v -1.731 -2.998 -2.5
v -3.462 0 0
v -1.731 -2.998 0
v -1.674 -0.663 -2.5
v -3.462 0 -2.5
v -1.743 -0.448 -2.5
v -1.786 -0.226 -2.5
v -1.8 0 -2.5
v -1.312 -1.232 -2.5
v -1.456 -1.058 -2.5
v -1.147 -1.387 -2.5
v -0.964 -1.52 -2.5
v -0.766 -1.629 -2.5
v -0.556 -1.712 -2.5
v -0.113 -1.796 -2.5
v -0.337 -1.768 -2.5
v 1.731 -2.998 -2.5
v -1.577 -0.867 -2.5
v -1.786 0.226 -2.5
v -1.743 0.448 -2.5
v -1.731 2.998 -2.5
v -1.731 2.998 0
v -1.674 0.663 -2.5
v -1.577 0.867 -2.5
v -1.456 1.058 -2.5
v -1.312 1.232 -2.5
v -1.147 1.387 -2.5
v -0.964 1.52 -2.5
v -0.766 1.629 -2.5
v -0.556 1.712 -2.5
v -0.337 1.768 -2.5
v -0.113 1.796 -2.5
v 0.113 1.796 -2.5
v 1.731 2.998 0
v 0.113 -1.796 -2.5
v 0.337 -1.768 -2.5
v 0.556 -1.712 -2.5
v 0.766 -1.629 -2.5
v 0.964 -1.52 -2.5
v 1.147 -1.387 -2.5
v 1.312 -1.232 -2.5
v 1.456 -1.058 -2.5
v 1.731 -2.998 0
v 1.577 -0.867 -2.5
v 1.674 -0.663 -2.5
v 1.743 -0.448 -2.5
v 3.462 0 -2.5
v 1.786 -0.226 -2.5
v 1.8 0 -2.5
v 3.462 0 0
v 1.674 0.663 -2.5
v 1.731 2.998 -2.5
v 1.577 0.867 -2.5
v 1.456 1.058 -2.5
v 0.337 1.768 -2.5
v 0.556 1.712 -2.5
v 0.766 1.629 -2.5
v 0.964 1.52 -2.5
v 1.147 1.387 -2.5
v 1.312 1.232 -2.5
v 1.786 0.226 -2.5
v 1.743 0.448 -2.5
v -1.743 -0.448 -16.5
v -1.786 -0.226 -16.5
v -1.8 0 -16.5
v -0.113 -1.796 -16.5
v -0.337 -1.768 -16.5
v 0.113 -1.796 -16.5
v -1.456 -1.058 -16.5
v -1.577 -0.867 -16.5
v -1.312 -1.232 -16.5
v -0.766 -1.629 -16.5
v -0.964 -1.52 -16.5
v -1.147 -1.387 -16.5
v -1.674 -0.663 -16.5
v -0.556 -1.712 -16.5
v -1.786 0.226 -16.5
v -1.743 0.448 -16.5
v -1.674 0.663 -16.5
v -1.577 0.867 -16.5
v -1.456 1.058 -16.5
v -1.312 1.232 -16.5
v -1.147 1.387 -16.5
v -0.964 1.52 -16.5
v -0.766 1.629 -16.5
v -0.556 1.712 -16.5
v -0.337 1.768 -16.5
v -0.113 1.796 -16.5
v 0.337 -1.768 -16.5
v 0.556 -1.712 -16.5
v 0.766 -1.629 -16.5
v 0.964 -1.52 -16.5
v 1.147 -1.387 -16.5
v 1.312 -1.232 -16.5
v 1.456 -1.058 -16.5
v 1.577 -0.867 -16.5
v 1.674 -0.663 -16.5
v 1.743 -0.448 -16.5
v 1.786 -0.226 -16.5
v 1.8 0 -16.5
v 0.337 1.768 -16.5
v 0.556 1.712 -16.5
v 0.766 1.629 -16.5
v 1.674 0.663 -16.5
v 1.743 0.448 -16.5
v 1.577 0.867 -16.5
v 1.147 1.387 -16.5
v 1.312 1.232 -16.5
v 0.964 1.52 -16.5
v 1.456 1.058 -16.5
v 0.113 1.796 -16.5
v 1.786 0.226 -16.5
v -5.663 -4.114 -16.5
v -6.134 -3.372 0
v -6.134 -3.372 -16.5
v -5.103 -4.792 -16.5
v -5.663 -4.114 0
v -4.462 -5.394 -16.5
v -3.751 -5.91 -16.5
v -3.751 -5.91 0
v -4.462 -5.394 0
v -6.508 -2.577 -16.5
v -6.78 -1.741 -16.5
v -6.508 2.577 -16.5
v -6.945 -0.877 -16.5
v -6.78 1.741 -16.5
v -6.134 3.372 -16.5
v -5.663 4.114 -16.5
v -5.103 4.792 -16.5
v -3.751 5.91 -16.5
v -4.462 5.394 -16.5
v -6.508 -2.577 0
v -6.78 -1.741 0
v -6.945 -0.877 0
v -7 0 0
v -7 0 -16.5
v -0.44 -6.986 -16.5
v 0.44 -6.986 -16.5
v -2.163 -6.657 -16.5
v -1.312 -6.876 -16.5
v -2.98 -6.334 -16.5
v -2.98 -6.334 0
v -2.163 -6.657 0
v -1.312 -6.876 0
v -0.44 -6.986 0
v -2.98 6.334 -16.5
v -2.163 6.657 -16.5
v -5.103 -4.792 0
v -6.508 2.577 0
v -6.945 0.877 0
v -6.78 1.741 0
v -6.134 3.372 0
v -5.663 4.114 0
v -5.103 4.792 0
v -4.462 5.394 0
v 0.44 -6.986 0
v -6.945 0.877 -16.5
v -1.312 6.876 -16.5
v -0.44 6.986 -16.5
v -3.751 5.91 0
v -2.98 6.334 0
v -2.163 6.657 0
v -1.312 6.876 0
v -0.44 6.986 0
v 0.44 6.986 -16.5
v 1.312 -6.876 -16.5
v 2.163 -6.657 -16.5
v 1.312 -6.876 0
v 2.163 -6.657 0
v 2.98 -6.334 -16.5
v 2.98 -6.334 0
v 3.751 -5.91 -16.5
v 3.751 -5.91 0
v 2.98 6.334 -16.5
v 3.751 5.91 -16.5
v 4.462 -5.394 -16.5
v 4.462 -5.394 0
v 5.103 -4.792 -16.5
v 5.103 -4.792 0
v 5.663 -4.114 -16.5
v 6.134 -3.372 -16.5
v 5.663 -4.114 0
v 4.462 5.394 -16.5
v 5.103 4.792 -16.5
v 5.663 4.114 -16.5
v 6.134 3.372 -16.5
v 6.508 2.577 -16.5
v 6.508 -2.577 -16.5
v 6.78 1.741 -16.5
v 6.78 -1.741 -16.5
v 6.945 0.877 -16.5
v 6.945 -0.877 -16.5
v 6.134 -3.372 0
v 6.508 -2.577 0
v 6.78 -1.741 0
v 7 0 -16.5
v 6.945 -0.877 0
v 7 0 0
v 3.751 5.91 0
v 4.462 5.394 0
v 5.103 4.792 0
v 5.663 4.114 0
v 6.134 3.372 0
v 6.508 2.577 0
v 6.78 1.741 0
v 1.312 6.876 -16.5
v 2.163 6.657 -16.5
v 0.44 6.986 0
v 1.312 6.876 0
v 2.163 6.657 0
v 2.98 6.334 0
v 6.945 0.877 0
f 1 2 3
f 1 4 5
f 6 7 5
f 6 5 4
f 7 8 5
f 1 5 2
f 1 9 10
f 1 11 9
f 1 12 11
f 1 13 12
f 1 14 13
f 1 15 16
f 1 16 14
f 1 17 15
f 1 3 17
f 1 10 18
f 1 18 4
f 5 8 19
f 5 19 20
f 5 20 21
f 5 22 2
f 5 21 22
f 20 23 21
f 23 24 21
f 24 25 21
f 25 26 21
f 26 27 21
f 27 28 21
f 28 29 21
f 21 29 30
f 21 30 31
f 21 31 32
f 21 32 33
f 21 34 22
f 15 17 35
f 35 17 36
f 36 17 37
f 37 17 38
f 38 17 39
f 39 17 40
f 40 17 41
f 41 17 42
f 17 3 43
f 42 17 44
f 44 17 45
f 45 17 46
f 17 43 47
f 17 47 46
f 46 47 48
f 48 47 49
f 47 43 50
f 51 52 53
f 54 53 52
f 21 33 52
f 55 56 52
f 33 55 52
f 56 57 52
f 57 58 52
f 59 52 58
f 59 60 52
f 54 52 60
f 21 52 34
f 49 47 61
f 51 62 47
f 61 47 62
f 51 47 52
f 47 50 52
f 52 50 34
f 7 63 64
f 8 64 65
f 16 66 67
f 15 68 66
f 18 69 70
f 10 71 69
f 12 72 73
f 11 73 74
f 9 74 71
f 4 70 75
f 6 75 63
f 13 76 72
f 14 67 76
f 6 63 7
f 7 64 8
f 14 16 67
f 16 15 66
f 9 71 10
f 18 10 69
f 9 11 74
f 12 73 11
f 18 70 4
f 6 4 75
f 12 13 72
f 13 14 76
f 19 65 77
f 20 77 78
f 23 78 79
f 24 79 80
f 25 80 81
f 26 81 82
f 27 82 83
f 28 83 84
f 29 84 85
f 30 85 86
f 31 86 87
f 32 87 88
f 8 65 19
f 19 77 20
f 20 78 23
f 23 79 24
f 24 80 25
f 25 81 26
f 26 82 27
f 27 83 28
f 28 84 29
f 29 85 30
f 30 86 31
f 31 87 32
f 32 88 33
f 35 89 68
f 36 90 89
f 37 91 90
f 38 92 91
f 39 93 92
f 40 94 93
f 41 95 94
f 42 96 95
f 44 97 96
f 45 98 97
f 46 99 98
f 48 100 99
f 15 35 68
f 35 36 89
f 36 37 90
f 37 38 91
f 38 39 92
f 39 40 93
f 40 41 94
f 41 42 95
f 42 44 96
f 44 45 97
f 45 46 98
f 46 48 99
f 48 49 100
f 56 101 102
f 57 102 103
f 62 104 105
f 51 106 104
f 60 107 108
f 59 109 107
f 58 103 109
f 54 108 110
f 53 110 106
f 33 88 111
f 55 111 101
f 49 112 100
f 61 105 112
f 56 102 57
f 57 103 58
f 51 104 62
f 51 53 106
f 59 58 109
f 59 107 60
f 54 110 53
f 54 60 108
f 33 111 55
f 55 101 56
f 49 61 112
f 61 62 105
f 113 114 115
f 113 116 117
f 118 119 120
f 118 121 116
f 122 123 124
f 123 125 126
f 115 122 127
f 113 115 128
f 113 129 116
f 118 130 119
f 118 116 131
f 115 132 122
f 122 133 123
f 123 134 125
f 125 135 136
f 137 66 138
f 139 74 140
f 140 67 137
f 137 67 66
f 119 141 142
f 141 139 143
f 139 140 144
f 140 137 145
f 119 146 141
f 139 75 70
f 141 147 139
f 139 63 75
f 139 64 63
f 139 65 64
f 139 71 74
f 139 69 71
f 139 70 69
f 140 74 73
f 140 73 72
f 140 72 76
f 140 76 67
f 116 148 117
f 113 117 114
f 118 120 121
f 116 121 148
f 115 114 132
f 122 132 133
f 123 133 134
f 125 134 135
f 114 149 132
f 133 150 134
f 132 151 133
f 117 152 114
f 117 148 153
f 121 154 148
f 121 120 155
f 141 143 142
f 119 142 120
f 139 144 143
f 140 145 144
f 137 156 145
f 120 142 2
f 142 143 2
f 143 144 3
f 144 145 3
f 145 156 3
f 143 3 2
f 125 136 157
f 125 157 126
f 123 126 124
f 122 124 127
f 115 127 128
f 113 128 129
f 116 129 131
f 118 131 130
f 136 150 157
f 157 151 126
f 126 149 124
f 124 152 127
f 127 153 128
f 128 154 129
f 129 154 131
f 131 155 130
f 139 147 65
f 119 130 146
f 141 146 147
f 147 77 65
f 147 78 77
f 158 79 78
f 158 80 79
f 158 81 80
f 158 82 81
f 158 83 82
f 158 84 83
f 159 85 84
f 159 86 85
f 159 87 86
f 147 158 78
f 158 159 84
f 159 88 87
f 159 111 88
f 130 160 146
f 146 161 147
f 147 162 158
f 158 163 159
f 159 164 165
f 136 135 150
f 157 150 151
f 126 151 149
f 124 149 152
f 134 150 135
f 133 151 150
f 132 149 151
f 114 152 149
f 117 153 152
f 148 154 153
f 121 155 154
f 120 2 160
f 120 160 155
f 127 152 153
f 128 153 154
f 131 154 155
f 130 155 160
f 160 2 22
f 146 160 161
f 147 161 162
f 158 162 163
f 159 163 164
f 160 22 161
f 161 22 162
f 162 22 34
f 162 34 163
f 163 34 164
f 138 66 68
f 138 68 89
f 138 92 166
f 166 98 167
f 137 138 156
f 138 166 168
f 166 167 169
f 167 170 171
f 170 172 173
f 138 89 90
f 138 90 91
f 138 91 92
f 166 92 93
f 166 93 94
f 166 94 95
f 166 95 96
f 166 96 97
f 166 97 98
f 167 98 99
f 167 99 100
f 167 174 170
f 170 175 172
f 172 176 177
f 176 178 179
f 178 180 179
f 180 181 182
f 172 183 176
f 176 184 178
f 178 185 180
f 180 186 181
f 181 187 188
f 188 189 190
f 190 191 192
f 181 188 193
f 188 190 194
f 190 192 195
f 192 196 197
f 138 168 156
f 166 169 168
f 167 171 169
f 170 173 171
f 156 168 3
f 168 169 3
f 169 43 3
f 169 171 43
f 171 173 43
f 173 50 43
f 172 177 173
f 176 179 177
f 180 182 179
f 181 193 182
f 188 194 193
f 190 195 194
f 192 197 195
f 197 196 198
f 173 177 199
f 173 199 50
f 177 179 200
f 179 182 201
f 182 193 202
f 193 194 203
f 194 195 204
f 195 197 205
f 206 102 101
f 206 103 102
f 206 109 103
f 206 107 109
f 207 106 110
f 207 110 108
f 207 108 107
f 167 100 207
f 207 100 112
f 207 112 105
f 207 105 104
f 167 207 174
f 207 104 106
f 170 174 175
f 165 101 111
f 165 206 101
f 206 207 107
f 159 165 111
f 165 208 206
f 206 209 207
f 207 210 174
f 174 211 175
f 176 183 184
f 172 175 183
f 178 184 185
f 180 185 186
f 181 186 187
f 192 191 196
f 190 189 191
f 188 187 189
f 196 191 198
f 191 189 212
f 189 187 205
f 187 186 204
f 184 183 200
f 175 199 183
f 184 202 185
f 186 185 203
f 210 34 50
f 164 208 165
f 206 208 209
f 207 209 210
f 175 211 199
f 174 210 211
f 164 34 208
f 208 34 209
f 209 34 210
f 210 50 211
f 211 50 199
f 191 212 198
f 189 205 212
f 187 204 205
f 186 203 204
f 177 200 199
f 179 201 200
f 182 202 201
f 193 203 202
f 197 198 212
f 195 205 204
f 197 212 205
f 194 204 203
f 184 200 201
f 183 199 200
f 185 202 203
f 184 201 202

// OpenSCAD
$fn = 50;

difference() {
	union() {
		translate(v = [0, 0, -16.5]) {
			cylinder(h = 16.5, r = 7.0);
		}
	}
	union() {
		translate(v = [0, 0, 0]) {
			rotate(a = [0, 0, 0]) {
				difference() {
					union() {
						translate(v = [0, 0, -2.5]) {
							linear_extrude(height = 2.5) {
								polygon(points = [[3.4619999999999997, 0.0], [1.7310000000000003, 2.9981799479017264], [-1.7309999999999992, 2.9981799479017264], [-3.4619999999999997, 4.2397272186481365e-16], [-1.7310000000000014, -2.998179947901726], [1.7309999999999977, -2.9981799479017277]]);
							}
						}
					}
					union();
				}
			}
		}
		#translate(v = [0, 0, -100.0]) {
			cylinder(h = 200, r = 1.8);
		}
	}
}
